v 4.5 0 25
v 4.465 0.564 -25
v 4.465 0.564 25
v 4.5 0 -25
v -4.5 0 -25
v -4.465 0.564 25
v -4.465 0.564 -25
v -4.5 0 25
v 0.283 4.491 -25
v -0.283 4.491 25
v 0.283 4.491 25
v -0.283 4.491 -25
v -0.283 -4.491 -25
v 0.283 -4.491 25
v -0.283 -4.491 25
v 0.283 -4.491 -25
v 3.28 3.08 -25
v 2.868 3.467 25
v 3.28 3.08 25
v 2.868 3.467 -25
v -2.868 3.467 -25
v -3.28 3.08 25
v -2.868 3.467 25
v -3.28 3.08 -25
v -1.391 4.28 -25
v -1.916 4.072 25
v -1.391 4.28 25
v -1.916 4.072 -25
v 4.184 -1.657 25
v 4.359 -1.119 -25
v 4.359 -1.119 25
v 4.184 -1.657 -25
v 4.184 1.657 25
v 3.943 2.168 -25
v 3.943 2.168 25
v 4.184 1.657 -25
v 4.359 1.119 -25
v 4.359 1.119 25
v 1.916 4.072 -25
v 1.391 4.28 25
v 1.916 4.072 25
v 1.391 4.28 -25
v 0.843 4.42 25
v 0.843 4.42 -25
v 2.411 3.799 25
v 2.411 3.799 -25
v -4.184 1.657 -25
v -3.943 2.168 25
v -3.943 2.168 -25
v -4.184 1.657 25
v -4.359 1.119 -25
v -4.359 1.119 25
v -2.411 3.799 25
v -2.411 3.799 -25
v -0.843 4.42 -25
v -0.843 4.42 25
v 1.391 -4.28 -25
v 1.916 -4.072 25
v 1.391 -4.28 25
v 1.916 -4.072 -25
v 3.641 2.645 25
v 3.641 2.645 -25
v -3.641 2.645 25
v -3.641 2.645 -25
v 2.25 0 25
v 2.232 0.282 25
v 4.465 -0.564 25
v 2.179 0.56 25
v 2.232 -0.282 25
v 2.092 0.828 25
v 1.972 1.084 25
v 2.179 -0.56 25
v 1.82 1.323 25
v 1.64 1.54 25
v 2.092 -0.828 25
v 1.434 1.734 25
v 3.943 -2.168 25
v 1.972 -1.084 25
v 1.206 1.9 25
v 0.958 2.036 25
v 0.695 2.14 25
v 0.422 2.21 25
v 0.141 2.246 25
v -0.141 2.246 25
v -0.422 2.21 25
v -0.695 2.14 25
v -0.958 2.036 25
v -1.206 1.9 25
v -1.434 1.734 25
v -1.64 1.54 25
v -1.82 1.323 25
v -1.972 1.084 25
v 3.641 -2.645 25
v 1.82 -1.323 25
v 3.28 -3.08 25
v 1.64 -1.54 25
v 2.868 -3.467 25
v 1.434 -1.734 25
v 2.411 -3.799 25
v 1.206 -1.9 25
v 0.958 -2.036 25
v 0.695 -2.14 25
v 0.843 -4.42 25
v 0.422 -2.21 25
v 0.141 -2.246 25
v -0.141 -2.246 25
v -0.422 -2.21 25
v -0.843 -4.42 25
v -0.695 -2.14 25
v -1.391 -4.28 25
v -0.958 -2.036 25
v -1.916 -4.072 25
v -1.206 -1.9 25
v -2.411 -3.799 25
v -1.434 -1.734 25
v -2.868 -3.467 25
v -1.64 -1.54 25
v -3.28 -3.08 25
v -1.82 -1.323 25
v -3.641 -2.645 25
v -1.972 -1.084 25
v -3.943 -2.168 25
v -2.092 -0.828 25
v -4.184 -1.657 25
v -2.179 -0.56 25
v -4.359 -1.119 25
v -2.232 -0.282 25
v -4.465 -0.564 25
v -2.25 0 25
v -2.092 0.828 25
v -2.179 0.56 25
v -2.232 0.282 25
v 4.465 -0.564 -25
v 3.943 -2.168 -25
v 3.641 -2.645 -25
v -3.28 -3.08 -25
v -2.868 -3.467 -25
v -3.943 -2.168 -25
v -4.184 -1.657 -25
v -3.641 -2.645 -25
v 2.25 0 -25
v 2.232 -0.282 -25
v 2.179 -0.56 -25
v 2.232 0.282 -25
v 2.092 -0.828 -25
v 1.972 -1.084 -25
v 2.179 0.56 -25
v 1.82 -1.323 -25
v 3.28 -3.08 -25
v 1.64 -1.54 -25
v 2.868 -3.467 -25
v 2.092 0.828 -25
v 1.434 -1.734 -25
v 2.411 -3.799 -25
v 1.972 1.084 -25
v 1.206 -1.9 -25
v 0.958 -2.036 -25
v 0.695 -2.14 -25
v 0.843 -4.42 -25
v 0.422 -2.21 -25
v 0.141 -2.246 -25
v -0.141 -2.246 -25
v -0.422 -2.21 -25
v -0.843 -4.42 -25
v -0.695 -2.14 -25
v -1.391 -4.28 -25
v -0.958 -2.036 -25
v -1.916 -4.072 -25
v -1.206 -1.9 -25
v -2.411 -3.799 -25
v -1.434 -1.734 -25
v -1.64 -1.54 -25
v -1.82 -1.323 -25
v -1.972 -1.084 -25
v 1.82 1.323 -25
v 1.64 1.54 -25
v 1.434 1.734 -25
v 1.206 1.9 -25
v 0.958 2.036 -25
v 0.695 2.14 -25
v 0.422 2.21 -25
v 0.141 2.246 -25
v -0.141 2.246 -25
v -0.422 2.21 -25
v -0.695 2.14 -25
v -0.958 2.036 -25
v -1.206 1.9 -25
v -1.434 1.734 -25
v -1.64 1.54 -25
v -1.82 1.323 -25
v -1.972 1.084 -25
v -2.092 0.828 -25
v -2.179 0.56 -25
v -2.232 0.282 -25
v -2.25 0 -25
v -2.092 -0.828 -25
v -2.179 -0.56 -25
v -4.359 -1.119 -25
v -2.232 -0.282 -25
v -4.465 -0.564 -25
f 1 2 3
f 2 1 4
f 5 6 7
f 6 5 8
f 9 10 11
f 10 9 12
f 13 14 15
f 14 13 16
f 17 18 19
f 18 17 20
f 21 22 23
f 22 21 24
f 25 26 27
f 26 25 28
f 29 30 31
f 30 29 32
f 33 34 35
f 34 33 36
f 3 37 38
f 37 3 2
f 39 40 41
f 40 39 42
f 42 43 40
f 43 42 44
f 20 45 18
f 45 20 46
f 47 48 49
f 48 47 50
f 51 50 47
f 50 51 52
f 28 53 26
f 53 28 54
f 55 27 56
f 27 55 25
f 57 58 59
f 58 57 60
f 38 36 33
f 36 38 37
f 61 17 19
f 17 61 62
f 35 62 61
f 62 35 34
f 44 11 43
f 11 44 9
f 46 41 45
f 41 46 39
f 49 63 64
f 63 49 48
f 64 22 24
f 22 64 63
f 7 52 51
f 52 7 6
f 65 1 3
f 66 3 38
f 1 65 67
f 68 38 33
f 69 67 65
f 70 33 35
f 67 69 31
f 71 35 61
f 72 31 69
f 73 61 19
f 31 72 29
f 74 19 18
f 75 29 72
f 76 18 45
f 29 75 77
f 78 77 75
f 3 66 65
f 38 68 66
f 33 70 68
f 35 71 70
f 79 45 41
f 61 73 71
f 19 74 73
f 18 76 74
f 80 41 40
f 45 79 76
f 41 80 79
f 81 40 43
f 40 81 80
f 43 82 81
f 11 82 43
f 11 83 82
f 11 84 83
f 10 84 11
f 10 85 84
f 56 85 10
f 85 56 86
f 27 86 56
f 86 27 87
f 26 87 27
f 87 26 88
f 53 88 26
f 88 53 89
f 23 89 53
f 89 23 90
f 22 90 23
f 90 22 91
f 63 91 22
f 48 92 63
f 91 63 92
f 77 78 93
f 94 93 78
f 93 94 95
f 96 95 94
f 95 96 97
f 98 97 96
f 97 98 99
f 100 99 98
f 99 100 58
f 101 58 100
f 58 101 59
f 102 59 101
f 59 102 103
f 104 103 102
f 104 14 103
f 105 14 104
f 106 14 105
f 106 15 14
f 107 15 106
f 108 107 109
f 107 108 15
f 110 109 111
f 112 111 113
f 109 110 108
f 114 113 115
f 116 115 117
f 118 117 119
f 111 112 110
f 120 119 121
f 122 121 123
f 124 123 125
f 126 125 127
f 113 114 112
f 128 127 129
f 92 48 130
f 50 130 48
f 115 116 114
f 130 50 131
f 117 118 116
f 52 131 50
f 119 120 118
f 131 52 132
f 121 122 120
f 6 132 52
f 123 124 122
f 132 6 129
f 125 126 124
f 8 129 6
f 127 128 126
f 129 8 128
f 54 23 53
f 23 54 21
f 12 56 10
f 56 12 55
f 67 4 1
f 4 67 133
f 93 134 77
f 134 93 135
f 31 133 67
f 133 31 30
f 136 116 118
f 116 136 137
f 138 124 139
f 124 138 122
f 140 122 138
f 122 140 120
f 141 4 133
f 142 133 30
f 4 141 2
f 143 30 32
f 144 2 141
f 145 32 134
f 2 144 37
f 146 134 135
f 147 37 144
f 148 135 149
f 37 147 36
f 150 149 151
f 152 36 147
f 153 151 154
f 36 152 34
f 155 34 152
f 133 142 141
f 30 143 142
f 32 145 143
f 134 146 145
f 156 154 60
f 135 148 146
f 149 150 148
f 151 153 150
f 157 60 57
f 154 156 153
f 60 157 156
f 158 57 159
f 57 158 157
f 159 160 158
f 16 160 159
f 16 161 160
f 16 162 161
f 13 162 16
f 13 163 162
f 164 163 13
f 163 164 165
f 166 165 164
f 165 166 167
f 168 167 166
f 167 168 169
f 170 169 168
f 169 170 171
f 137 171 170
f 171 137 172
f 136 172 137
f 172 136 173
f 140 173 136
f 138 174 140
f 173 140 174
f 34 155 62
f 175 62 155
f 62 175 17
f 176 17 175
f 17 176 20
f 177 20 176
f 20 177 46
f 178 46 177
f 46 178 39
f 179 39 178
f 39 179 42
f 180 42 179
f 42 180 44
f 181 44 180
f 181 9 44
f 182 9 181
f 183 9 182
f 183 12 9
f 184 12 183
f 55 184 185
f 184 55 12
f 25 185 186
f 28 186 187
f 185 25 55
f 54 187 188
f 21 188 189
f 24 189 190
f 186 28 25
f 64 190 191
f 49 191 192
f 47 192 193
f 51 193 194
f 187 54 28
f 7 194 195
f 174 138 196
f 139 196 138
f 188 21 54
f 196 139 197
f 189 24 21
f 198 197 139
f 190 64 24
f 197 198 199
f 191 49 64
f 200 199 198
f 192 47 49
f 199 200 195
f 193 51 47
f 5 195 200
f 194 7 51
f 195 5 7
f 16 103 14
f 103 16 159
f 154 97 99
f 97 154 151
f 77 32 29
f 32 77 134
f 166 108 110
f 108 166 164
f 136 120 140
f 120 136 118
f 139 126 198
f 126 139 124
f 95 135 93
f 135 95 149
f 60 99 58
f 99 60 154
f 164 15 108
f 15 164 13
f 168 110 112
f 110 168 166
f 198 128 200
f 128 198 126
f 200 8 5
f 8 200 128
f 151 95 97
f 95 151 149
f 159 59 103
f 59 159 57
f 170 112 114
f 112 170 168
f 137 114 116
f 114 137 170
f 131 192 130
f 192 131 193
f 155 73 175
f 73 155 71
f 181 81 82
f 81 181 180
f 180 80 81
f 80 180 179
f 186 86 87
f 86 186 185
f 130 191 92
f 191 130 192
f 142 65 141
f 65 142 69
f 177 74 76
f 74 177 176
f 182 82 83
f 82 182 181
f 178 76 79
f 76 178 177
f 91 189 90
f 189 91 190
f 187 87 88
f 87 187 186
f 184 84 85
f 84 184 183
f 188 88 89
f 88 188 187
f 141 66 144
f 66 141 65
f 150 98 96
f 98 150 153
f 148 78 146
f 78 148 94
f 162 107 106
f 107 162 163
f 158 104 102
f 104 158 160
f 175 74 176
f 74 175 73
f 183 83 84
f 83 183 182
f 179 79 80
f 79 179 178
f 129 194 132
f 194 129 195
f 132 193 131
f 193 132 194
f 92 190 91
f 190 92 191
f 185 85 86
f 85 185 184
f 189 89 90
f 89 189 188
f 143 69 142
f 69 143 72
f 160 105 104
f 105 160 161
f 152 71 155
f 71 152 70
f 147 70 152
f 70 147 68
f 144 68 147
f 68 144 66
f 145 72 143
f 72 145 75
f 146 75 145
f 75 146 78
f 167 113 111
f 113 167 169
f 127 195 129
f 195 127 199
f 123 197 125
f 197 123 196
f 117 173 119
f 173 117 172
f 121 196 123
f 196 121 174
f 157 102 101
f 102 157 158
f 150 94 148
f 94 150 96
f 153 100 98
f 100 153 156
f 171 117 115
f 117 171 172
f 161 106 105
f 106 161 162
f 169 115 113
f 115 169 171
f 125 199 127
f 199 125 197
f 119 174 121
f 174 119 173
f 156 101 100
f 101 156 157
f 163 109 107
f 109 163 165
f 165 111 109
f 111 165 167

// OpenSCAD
$fn = 50;


difference() {
	union() {
		translate(v = [0, 0, -25.0000000000]) {
			cylinder(h = 50, r = 4.5000000000);
		}
	}
	union() {
		translate(v = [0, 0, -100.0000000000]) {
			cylinder(h = 200, r = 2.2500000000);
		}
	}
}
